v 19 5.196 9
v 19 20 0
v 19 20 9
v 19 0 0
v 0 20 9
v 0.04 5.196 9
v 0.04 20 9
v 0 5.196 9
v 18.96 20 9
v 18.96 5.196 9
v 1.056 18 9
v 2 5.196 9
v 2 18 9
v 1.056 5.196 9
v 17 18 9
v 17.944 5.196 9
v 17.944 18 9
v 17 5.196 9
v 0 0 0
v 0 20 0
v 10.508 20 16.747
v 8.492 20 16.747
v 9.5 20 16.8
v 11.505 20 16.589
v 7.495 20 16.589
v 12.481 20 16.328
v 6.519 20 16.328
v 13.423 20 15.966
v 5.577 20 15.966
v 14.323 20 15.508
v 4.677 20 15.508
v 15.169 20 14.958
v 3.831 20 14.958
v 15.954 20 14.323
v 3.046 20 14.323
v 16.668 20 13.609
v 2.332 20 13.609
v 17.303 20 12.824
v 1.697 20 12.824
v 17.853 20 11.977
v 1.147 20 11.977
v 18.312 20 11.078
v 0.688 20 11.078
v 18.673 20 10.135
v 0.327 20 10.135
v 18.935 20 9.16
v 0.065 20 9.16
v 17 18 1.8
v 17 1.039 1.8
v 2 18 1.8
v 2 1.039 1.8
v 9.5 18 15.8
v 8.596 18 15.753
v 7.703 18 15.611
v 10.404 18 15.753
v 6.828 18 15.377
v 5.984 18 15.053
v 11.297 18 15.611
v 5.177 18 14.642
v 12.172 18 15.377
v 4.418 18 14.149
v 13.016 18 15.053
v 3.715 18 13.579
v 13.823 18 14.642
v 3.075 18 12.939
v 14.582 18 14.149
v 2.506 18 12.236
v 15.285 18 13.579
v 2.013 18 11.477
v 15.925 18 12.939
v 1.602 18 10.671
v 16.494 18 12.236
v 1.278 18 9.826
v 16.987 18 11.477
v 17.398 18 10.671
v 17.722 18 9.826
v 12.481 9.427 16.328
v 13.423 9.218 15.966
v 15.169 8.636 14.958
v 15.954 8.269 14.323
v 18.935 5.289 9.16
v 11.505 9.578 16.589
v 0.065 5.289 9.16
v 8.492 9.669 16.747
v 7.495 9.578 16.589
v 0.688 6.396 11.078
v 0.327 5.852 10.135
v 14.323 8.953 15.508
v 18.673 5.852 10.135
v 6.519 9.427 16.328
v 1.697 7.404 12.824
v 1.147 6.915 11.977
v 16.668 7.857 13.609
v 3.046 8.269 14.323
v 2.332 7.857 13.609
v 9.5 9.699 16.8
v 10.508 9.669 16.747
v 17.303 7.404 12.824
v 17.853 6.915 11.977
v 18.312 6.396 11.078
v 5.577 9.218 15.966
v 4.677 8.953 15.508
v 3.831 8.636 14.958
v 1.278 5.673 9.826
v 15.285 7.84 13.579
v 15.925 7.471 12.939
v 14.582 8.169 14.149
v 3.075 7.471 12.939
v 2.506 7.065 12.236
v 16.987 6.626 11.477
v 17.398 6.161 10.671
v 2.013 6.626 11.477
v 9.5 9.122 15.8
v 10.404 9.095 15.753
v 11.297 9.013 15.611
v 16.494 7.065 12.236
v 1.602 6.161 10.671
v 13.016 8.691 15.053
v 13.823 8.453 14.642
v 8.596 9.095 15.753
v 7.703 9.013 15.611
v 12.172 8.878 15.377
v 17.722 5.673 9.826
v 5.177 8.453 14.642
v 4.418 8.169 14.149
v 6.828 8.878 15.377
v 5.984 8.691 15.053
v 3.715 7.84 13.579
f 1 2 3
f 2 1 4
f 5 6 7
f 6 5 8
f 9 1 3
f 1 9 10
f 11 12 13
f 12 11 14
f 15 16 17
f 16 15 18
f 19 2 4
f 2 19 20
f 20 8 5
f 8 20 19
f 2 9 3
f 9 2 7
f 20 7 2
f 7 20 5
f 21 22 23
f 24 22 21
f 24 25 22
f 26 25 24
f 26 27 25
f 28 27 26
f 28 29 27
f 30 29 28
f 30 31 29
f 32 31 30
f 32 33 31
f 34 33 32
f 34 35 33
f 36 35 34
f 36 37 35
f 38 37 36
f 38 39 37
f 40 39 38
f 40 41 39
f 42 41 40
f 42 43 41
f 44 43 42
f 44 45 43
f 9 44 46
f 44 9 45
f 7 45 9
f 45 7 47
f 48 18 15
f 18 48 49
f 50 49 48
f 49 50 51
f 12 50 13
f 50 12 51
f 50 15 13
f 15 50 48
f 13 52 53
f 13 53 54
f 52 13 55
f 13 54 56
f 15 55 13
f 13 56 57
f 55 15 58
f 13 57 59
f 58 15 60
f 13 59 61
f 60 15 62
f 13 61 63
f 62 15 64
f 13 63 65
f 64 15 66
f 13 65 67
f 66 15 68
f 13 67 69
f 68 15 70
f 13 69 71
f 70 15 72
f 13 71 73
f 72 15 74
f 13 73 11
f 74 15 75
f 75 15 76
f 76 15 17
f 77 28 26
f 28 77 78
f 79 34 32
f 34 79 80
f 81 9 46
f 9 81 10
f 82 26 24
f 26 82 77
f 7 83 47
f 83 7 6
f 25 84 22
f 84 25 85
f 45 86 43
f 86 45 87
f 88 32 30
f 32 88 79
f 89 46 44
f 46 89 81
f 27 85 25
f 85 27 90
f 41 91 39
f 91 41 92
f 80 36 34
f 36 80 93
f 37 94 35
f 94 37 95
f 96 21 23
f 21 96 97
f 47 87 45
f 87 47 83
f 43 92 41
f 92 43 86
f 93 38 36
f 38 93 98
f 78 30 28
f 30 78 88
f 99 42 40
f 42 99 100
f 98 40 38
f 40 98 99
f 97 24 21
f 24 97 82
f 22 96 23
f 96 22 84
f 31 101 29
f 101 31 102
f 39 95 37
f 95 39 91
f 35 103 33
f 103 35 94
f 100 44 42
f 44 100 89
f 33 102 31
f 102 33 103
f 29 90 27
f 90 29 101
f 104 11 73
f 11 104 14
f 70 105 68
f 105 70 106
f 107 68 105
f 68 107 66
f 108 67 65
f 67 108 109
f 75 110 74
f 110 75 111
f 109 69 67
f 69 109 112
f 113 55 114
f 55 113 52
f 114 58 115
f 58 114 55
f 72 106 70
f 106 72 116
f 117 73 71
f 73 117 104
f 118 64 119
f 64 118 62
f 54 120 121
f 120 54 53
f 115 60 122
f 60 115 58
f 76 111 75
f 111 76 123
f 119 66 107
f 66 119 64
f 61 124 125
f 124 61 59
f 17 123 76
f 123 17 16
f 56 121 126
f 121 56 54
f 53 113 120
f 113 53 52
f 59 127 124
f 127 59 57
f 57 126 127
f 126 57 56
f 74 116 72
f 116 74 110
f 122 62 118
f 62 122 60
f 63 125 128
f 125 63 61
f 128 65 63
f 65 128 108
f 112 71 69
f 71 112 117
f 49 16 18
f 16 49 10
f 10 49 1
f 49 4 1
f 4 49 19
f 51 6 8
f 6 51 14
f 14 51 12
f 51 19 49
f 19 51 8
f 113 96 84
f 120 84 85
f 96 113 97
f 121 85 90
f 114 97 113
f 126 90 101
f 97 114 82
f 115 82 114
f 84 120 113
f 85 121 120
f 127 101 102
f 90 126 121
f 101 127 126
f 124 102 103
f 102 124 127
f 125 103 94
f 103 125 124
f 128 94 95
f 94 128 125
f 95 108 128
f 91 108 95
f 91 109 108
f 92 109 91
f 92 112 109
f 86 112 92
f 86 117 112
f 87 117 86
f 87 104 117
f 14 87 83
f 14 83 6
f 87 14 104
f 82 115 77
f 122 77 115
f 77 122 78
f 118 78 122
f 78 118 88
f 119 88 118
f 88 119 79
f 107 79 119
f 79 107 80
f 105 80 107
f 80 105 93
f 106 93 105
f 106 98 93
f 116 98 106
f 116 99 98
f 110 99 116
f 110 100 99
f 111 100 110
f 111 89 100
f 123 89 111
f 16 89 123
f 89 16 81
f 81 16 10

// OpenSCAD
$fn=60;
length = 20;
cap_depth = 2;
outer_width = 19;
wire_hole_diameter=5;
top_radius = 8.64545;


difference(){
    union(){ // mushroom shaped tube
        difference(){ // U profile
            cube([outer_width, length, 9]);
            translate([2, 0, 1.8]) cube([15, length-cap_depth, 9]);
        }
        translate([0, 0, 9]) difference(){ // half tube top
            translate([8.4 + 1.1, 0, 6.6 - top_radius + 0.2]) 
            rotate([270, 0, 0]){ // full tube
                difference(){
                    cylinder(h=length, r=top_radius+1);
                    cylinder(h=length-cap_depth, r=top_radius);
                }
            }
            // cut bottom part
            translate([-20, 0, -20]) cube([40, length, 20]);
        }
    }
    // slated end
    rotate([-30, 0, 0]) translate([0, -30, 0]) cube([outer_width, 30, 50]);
}
